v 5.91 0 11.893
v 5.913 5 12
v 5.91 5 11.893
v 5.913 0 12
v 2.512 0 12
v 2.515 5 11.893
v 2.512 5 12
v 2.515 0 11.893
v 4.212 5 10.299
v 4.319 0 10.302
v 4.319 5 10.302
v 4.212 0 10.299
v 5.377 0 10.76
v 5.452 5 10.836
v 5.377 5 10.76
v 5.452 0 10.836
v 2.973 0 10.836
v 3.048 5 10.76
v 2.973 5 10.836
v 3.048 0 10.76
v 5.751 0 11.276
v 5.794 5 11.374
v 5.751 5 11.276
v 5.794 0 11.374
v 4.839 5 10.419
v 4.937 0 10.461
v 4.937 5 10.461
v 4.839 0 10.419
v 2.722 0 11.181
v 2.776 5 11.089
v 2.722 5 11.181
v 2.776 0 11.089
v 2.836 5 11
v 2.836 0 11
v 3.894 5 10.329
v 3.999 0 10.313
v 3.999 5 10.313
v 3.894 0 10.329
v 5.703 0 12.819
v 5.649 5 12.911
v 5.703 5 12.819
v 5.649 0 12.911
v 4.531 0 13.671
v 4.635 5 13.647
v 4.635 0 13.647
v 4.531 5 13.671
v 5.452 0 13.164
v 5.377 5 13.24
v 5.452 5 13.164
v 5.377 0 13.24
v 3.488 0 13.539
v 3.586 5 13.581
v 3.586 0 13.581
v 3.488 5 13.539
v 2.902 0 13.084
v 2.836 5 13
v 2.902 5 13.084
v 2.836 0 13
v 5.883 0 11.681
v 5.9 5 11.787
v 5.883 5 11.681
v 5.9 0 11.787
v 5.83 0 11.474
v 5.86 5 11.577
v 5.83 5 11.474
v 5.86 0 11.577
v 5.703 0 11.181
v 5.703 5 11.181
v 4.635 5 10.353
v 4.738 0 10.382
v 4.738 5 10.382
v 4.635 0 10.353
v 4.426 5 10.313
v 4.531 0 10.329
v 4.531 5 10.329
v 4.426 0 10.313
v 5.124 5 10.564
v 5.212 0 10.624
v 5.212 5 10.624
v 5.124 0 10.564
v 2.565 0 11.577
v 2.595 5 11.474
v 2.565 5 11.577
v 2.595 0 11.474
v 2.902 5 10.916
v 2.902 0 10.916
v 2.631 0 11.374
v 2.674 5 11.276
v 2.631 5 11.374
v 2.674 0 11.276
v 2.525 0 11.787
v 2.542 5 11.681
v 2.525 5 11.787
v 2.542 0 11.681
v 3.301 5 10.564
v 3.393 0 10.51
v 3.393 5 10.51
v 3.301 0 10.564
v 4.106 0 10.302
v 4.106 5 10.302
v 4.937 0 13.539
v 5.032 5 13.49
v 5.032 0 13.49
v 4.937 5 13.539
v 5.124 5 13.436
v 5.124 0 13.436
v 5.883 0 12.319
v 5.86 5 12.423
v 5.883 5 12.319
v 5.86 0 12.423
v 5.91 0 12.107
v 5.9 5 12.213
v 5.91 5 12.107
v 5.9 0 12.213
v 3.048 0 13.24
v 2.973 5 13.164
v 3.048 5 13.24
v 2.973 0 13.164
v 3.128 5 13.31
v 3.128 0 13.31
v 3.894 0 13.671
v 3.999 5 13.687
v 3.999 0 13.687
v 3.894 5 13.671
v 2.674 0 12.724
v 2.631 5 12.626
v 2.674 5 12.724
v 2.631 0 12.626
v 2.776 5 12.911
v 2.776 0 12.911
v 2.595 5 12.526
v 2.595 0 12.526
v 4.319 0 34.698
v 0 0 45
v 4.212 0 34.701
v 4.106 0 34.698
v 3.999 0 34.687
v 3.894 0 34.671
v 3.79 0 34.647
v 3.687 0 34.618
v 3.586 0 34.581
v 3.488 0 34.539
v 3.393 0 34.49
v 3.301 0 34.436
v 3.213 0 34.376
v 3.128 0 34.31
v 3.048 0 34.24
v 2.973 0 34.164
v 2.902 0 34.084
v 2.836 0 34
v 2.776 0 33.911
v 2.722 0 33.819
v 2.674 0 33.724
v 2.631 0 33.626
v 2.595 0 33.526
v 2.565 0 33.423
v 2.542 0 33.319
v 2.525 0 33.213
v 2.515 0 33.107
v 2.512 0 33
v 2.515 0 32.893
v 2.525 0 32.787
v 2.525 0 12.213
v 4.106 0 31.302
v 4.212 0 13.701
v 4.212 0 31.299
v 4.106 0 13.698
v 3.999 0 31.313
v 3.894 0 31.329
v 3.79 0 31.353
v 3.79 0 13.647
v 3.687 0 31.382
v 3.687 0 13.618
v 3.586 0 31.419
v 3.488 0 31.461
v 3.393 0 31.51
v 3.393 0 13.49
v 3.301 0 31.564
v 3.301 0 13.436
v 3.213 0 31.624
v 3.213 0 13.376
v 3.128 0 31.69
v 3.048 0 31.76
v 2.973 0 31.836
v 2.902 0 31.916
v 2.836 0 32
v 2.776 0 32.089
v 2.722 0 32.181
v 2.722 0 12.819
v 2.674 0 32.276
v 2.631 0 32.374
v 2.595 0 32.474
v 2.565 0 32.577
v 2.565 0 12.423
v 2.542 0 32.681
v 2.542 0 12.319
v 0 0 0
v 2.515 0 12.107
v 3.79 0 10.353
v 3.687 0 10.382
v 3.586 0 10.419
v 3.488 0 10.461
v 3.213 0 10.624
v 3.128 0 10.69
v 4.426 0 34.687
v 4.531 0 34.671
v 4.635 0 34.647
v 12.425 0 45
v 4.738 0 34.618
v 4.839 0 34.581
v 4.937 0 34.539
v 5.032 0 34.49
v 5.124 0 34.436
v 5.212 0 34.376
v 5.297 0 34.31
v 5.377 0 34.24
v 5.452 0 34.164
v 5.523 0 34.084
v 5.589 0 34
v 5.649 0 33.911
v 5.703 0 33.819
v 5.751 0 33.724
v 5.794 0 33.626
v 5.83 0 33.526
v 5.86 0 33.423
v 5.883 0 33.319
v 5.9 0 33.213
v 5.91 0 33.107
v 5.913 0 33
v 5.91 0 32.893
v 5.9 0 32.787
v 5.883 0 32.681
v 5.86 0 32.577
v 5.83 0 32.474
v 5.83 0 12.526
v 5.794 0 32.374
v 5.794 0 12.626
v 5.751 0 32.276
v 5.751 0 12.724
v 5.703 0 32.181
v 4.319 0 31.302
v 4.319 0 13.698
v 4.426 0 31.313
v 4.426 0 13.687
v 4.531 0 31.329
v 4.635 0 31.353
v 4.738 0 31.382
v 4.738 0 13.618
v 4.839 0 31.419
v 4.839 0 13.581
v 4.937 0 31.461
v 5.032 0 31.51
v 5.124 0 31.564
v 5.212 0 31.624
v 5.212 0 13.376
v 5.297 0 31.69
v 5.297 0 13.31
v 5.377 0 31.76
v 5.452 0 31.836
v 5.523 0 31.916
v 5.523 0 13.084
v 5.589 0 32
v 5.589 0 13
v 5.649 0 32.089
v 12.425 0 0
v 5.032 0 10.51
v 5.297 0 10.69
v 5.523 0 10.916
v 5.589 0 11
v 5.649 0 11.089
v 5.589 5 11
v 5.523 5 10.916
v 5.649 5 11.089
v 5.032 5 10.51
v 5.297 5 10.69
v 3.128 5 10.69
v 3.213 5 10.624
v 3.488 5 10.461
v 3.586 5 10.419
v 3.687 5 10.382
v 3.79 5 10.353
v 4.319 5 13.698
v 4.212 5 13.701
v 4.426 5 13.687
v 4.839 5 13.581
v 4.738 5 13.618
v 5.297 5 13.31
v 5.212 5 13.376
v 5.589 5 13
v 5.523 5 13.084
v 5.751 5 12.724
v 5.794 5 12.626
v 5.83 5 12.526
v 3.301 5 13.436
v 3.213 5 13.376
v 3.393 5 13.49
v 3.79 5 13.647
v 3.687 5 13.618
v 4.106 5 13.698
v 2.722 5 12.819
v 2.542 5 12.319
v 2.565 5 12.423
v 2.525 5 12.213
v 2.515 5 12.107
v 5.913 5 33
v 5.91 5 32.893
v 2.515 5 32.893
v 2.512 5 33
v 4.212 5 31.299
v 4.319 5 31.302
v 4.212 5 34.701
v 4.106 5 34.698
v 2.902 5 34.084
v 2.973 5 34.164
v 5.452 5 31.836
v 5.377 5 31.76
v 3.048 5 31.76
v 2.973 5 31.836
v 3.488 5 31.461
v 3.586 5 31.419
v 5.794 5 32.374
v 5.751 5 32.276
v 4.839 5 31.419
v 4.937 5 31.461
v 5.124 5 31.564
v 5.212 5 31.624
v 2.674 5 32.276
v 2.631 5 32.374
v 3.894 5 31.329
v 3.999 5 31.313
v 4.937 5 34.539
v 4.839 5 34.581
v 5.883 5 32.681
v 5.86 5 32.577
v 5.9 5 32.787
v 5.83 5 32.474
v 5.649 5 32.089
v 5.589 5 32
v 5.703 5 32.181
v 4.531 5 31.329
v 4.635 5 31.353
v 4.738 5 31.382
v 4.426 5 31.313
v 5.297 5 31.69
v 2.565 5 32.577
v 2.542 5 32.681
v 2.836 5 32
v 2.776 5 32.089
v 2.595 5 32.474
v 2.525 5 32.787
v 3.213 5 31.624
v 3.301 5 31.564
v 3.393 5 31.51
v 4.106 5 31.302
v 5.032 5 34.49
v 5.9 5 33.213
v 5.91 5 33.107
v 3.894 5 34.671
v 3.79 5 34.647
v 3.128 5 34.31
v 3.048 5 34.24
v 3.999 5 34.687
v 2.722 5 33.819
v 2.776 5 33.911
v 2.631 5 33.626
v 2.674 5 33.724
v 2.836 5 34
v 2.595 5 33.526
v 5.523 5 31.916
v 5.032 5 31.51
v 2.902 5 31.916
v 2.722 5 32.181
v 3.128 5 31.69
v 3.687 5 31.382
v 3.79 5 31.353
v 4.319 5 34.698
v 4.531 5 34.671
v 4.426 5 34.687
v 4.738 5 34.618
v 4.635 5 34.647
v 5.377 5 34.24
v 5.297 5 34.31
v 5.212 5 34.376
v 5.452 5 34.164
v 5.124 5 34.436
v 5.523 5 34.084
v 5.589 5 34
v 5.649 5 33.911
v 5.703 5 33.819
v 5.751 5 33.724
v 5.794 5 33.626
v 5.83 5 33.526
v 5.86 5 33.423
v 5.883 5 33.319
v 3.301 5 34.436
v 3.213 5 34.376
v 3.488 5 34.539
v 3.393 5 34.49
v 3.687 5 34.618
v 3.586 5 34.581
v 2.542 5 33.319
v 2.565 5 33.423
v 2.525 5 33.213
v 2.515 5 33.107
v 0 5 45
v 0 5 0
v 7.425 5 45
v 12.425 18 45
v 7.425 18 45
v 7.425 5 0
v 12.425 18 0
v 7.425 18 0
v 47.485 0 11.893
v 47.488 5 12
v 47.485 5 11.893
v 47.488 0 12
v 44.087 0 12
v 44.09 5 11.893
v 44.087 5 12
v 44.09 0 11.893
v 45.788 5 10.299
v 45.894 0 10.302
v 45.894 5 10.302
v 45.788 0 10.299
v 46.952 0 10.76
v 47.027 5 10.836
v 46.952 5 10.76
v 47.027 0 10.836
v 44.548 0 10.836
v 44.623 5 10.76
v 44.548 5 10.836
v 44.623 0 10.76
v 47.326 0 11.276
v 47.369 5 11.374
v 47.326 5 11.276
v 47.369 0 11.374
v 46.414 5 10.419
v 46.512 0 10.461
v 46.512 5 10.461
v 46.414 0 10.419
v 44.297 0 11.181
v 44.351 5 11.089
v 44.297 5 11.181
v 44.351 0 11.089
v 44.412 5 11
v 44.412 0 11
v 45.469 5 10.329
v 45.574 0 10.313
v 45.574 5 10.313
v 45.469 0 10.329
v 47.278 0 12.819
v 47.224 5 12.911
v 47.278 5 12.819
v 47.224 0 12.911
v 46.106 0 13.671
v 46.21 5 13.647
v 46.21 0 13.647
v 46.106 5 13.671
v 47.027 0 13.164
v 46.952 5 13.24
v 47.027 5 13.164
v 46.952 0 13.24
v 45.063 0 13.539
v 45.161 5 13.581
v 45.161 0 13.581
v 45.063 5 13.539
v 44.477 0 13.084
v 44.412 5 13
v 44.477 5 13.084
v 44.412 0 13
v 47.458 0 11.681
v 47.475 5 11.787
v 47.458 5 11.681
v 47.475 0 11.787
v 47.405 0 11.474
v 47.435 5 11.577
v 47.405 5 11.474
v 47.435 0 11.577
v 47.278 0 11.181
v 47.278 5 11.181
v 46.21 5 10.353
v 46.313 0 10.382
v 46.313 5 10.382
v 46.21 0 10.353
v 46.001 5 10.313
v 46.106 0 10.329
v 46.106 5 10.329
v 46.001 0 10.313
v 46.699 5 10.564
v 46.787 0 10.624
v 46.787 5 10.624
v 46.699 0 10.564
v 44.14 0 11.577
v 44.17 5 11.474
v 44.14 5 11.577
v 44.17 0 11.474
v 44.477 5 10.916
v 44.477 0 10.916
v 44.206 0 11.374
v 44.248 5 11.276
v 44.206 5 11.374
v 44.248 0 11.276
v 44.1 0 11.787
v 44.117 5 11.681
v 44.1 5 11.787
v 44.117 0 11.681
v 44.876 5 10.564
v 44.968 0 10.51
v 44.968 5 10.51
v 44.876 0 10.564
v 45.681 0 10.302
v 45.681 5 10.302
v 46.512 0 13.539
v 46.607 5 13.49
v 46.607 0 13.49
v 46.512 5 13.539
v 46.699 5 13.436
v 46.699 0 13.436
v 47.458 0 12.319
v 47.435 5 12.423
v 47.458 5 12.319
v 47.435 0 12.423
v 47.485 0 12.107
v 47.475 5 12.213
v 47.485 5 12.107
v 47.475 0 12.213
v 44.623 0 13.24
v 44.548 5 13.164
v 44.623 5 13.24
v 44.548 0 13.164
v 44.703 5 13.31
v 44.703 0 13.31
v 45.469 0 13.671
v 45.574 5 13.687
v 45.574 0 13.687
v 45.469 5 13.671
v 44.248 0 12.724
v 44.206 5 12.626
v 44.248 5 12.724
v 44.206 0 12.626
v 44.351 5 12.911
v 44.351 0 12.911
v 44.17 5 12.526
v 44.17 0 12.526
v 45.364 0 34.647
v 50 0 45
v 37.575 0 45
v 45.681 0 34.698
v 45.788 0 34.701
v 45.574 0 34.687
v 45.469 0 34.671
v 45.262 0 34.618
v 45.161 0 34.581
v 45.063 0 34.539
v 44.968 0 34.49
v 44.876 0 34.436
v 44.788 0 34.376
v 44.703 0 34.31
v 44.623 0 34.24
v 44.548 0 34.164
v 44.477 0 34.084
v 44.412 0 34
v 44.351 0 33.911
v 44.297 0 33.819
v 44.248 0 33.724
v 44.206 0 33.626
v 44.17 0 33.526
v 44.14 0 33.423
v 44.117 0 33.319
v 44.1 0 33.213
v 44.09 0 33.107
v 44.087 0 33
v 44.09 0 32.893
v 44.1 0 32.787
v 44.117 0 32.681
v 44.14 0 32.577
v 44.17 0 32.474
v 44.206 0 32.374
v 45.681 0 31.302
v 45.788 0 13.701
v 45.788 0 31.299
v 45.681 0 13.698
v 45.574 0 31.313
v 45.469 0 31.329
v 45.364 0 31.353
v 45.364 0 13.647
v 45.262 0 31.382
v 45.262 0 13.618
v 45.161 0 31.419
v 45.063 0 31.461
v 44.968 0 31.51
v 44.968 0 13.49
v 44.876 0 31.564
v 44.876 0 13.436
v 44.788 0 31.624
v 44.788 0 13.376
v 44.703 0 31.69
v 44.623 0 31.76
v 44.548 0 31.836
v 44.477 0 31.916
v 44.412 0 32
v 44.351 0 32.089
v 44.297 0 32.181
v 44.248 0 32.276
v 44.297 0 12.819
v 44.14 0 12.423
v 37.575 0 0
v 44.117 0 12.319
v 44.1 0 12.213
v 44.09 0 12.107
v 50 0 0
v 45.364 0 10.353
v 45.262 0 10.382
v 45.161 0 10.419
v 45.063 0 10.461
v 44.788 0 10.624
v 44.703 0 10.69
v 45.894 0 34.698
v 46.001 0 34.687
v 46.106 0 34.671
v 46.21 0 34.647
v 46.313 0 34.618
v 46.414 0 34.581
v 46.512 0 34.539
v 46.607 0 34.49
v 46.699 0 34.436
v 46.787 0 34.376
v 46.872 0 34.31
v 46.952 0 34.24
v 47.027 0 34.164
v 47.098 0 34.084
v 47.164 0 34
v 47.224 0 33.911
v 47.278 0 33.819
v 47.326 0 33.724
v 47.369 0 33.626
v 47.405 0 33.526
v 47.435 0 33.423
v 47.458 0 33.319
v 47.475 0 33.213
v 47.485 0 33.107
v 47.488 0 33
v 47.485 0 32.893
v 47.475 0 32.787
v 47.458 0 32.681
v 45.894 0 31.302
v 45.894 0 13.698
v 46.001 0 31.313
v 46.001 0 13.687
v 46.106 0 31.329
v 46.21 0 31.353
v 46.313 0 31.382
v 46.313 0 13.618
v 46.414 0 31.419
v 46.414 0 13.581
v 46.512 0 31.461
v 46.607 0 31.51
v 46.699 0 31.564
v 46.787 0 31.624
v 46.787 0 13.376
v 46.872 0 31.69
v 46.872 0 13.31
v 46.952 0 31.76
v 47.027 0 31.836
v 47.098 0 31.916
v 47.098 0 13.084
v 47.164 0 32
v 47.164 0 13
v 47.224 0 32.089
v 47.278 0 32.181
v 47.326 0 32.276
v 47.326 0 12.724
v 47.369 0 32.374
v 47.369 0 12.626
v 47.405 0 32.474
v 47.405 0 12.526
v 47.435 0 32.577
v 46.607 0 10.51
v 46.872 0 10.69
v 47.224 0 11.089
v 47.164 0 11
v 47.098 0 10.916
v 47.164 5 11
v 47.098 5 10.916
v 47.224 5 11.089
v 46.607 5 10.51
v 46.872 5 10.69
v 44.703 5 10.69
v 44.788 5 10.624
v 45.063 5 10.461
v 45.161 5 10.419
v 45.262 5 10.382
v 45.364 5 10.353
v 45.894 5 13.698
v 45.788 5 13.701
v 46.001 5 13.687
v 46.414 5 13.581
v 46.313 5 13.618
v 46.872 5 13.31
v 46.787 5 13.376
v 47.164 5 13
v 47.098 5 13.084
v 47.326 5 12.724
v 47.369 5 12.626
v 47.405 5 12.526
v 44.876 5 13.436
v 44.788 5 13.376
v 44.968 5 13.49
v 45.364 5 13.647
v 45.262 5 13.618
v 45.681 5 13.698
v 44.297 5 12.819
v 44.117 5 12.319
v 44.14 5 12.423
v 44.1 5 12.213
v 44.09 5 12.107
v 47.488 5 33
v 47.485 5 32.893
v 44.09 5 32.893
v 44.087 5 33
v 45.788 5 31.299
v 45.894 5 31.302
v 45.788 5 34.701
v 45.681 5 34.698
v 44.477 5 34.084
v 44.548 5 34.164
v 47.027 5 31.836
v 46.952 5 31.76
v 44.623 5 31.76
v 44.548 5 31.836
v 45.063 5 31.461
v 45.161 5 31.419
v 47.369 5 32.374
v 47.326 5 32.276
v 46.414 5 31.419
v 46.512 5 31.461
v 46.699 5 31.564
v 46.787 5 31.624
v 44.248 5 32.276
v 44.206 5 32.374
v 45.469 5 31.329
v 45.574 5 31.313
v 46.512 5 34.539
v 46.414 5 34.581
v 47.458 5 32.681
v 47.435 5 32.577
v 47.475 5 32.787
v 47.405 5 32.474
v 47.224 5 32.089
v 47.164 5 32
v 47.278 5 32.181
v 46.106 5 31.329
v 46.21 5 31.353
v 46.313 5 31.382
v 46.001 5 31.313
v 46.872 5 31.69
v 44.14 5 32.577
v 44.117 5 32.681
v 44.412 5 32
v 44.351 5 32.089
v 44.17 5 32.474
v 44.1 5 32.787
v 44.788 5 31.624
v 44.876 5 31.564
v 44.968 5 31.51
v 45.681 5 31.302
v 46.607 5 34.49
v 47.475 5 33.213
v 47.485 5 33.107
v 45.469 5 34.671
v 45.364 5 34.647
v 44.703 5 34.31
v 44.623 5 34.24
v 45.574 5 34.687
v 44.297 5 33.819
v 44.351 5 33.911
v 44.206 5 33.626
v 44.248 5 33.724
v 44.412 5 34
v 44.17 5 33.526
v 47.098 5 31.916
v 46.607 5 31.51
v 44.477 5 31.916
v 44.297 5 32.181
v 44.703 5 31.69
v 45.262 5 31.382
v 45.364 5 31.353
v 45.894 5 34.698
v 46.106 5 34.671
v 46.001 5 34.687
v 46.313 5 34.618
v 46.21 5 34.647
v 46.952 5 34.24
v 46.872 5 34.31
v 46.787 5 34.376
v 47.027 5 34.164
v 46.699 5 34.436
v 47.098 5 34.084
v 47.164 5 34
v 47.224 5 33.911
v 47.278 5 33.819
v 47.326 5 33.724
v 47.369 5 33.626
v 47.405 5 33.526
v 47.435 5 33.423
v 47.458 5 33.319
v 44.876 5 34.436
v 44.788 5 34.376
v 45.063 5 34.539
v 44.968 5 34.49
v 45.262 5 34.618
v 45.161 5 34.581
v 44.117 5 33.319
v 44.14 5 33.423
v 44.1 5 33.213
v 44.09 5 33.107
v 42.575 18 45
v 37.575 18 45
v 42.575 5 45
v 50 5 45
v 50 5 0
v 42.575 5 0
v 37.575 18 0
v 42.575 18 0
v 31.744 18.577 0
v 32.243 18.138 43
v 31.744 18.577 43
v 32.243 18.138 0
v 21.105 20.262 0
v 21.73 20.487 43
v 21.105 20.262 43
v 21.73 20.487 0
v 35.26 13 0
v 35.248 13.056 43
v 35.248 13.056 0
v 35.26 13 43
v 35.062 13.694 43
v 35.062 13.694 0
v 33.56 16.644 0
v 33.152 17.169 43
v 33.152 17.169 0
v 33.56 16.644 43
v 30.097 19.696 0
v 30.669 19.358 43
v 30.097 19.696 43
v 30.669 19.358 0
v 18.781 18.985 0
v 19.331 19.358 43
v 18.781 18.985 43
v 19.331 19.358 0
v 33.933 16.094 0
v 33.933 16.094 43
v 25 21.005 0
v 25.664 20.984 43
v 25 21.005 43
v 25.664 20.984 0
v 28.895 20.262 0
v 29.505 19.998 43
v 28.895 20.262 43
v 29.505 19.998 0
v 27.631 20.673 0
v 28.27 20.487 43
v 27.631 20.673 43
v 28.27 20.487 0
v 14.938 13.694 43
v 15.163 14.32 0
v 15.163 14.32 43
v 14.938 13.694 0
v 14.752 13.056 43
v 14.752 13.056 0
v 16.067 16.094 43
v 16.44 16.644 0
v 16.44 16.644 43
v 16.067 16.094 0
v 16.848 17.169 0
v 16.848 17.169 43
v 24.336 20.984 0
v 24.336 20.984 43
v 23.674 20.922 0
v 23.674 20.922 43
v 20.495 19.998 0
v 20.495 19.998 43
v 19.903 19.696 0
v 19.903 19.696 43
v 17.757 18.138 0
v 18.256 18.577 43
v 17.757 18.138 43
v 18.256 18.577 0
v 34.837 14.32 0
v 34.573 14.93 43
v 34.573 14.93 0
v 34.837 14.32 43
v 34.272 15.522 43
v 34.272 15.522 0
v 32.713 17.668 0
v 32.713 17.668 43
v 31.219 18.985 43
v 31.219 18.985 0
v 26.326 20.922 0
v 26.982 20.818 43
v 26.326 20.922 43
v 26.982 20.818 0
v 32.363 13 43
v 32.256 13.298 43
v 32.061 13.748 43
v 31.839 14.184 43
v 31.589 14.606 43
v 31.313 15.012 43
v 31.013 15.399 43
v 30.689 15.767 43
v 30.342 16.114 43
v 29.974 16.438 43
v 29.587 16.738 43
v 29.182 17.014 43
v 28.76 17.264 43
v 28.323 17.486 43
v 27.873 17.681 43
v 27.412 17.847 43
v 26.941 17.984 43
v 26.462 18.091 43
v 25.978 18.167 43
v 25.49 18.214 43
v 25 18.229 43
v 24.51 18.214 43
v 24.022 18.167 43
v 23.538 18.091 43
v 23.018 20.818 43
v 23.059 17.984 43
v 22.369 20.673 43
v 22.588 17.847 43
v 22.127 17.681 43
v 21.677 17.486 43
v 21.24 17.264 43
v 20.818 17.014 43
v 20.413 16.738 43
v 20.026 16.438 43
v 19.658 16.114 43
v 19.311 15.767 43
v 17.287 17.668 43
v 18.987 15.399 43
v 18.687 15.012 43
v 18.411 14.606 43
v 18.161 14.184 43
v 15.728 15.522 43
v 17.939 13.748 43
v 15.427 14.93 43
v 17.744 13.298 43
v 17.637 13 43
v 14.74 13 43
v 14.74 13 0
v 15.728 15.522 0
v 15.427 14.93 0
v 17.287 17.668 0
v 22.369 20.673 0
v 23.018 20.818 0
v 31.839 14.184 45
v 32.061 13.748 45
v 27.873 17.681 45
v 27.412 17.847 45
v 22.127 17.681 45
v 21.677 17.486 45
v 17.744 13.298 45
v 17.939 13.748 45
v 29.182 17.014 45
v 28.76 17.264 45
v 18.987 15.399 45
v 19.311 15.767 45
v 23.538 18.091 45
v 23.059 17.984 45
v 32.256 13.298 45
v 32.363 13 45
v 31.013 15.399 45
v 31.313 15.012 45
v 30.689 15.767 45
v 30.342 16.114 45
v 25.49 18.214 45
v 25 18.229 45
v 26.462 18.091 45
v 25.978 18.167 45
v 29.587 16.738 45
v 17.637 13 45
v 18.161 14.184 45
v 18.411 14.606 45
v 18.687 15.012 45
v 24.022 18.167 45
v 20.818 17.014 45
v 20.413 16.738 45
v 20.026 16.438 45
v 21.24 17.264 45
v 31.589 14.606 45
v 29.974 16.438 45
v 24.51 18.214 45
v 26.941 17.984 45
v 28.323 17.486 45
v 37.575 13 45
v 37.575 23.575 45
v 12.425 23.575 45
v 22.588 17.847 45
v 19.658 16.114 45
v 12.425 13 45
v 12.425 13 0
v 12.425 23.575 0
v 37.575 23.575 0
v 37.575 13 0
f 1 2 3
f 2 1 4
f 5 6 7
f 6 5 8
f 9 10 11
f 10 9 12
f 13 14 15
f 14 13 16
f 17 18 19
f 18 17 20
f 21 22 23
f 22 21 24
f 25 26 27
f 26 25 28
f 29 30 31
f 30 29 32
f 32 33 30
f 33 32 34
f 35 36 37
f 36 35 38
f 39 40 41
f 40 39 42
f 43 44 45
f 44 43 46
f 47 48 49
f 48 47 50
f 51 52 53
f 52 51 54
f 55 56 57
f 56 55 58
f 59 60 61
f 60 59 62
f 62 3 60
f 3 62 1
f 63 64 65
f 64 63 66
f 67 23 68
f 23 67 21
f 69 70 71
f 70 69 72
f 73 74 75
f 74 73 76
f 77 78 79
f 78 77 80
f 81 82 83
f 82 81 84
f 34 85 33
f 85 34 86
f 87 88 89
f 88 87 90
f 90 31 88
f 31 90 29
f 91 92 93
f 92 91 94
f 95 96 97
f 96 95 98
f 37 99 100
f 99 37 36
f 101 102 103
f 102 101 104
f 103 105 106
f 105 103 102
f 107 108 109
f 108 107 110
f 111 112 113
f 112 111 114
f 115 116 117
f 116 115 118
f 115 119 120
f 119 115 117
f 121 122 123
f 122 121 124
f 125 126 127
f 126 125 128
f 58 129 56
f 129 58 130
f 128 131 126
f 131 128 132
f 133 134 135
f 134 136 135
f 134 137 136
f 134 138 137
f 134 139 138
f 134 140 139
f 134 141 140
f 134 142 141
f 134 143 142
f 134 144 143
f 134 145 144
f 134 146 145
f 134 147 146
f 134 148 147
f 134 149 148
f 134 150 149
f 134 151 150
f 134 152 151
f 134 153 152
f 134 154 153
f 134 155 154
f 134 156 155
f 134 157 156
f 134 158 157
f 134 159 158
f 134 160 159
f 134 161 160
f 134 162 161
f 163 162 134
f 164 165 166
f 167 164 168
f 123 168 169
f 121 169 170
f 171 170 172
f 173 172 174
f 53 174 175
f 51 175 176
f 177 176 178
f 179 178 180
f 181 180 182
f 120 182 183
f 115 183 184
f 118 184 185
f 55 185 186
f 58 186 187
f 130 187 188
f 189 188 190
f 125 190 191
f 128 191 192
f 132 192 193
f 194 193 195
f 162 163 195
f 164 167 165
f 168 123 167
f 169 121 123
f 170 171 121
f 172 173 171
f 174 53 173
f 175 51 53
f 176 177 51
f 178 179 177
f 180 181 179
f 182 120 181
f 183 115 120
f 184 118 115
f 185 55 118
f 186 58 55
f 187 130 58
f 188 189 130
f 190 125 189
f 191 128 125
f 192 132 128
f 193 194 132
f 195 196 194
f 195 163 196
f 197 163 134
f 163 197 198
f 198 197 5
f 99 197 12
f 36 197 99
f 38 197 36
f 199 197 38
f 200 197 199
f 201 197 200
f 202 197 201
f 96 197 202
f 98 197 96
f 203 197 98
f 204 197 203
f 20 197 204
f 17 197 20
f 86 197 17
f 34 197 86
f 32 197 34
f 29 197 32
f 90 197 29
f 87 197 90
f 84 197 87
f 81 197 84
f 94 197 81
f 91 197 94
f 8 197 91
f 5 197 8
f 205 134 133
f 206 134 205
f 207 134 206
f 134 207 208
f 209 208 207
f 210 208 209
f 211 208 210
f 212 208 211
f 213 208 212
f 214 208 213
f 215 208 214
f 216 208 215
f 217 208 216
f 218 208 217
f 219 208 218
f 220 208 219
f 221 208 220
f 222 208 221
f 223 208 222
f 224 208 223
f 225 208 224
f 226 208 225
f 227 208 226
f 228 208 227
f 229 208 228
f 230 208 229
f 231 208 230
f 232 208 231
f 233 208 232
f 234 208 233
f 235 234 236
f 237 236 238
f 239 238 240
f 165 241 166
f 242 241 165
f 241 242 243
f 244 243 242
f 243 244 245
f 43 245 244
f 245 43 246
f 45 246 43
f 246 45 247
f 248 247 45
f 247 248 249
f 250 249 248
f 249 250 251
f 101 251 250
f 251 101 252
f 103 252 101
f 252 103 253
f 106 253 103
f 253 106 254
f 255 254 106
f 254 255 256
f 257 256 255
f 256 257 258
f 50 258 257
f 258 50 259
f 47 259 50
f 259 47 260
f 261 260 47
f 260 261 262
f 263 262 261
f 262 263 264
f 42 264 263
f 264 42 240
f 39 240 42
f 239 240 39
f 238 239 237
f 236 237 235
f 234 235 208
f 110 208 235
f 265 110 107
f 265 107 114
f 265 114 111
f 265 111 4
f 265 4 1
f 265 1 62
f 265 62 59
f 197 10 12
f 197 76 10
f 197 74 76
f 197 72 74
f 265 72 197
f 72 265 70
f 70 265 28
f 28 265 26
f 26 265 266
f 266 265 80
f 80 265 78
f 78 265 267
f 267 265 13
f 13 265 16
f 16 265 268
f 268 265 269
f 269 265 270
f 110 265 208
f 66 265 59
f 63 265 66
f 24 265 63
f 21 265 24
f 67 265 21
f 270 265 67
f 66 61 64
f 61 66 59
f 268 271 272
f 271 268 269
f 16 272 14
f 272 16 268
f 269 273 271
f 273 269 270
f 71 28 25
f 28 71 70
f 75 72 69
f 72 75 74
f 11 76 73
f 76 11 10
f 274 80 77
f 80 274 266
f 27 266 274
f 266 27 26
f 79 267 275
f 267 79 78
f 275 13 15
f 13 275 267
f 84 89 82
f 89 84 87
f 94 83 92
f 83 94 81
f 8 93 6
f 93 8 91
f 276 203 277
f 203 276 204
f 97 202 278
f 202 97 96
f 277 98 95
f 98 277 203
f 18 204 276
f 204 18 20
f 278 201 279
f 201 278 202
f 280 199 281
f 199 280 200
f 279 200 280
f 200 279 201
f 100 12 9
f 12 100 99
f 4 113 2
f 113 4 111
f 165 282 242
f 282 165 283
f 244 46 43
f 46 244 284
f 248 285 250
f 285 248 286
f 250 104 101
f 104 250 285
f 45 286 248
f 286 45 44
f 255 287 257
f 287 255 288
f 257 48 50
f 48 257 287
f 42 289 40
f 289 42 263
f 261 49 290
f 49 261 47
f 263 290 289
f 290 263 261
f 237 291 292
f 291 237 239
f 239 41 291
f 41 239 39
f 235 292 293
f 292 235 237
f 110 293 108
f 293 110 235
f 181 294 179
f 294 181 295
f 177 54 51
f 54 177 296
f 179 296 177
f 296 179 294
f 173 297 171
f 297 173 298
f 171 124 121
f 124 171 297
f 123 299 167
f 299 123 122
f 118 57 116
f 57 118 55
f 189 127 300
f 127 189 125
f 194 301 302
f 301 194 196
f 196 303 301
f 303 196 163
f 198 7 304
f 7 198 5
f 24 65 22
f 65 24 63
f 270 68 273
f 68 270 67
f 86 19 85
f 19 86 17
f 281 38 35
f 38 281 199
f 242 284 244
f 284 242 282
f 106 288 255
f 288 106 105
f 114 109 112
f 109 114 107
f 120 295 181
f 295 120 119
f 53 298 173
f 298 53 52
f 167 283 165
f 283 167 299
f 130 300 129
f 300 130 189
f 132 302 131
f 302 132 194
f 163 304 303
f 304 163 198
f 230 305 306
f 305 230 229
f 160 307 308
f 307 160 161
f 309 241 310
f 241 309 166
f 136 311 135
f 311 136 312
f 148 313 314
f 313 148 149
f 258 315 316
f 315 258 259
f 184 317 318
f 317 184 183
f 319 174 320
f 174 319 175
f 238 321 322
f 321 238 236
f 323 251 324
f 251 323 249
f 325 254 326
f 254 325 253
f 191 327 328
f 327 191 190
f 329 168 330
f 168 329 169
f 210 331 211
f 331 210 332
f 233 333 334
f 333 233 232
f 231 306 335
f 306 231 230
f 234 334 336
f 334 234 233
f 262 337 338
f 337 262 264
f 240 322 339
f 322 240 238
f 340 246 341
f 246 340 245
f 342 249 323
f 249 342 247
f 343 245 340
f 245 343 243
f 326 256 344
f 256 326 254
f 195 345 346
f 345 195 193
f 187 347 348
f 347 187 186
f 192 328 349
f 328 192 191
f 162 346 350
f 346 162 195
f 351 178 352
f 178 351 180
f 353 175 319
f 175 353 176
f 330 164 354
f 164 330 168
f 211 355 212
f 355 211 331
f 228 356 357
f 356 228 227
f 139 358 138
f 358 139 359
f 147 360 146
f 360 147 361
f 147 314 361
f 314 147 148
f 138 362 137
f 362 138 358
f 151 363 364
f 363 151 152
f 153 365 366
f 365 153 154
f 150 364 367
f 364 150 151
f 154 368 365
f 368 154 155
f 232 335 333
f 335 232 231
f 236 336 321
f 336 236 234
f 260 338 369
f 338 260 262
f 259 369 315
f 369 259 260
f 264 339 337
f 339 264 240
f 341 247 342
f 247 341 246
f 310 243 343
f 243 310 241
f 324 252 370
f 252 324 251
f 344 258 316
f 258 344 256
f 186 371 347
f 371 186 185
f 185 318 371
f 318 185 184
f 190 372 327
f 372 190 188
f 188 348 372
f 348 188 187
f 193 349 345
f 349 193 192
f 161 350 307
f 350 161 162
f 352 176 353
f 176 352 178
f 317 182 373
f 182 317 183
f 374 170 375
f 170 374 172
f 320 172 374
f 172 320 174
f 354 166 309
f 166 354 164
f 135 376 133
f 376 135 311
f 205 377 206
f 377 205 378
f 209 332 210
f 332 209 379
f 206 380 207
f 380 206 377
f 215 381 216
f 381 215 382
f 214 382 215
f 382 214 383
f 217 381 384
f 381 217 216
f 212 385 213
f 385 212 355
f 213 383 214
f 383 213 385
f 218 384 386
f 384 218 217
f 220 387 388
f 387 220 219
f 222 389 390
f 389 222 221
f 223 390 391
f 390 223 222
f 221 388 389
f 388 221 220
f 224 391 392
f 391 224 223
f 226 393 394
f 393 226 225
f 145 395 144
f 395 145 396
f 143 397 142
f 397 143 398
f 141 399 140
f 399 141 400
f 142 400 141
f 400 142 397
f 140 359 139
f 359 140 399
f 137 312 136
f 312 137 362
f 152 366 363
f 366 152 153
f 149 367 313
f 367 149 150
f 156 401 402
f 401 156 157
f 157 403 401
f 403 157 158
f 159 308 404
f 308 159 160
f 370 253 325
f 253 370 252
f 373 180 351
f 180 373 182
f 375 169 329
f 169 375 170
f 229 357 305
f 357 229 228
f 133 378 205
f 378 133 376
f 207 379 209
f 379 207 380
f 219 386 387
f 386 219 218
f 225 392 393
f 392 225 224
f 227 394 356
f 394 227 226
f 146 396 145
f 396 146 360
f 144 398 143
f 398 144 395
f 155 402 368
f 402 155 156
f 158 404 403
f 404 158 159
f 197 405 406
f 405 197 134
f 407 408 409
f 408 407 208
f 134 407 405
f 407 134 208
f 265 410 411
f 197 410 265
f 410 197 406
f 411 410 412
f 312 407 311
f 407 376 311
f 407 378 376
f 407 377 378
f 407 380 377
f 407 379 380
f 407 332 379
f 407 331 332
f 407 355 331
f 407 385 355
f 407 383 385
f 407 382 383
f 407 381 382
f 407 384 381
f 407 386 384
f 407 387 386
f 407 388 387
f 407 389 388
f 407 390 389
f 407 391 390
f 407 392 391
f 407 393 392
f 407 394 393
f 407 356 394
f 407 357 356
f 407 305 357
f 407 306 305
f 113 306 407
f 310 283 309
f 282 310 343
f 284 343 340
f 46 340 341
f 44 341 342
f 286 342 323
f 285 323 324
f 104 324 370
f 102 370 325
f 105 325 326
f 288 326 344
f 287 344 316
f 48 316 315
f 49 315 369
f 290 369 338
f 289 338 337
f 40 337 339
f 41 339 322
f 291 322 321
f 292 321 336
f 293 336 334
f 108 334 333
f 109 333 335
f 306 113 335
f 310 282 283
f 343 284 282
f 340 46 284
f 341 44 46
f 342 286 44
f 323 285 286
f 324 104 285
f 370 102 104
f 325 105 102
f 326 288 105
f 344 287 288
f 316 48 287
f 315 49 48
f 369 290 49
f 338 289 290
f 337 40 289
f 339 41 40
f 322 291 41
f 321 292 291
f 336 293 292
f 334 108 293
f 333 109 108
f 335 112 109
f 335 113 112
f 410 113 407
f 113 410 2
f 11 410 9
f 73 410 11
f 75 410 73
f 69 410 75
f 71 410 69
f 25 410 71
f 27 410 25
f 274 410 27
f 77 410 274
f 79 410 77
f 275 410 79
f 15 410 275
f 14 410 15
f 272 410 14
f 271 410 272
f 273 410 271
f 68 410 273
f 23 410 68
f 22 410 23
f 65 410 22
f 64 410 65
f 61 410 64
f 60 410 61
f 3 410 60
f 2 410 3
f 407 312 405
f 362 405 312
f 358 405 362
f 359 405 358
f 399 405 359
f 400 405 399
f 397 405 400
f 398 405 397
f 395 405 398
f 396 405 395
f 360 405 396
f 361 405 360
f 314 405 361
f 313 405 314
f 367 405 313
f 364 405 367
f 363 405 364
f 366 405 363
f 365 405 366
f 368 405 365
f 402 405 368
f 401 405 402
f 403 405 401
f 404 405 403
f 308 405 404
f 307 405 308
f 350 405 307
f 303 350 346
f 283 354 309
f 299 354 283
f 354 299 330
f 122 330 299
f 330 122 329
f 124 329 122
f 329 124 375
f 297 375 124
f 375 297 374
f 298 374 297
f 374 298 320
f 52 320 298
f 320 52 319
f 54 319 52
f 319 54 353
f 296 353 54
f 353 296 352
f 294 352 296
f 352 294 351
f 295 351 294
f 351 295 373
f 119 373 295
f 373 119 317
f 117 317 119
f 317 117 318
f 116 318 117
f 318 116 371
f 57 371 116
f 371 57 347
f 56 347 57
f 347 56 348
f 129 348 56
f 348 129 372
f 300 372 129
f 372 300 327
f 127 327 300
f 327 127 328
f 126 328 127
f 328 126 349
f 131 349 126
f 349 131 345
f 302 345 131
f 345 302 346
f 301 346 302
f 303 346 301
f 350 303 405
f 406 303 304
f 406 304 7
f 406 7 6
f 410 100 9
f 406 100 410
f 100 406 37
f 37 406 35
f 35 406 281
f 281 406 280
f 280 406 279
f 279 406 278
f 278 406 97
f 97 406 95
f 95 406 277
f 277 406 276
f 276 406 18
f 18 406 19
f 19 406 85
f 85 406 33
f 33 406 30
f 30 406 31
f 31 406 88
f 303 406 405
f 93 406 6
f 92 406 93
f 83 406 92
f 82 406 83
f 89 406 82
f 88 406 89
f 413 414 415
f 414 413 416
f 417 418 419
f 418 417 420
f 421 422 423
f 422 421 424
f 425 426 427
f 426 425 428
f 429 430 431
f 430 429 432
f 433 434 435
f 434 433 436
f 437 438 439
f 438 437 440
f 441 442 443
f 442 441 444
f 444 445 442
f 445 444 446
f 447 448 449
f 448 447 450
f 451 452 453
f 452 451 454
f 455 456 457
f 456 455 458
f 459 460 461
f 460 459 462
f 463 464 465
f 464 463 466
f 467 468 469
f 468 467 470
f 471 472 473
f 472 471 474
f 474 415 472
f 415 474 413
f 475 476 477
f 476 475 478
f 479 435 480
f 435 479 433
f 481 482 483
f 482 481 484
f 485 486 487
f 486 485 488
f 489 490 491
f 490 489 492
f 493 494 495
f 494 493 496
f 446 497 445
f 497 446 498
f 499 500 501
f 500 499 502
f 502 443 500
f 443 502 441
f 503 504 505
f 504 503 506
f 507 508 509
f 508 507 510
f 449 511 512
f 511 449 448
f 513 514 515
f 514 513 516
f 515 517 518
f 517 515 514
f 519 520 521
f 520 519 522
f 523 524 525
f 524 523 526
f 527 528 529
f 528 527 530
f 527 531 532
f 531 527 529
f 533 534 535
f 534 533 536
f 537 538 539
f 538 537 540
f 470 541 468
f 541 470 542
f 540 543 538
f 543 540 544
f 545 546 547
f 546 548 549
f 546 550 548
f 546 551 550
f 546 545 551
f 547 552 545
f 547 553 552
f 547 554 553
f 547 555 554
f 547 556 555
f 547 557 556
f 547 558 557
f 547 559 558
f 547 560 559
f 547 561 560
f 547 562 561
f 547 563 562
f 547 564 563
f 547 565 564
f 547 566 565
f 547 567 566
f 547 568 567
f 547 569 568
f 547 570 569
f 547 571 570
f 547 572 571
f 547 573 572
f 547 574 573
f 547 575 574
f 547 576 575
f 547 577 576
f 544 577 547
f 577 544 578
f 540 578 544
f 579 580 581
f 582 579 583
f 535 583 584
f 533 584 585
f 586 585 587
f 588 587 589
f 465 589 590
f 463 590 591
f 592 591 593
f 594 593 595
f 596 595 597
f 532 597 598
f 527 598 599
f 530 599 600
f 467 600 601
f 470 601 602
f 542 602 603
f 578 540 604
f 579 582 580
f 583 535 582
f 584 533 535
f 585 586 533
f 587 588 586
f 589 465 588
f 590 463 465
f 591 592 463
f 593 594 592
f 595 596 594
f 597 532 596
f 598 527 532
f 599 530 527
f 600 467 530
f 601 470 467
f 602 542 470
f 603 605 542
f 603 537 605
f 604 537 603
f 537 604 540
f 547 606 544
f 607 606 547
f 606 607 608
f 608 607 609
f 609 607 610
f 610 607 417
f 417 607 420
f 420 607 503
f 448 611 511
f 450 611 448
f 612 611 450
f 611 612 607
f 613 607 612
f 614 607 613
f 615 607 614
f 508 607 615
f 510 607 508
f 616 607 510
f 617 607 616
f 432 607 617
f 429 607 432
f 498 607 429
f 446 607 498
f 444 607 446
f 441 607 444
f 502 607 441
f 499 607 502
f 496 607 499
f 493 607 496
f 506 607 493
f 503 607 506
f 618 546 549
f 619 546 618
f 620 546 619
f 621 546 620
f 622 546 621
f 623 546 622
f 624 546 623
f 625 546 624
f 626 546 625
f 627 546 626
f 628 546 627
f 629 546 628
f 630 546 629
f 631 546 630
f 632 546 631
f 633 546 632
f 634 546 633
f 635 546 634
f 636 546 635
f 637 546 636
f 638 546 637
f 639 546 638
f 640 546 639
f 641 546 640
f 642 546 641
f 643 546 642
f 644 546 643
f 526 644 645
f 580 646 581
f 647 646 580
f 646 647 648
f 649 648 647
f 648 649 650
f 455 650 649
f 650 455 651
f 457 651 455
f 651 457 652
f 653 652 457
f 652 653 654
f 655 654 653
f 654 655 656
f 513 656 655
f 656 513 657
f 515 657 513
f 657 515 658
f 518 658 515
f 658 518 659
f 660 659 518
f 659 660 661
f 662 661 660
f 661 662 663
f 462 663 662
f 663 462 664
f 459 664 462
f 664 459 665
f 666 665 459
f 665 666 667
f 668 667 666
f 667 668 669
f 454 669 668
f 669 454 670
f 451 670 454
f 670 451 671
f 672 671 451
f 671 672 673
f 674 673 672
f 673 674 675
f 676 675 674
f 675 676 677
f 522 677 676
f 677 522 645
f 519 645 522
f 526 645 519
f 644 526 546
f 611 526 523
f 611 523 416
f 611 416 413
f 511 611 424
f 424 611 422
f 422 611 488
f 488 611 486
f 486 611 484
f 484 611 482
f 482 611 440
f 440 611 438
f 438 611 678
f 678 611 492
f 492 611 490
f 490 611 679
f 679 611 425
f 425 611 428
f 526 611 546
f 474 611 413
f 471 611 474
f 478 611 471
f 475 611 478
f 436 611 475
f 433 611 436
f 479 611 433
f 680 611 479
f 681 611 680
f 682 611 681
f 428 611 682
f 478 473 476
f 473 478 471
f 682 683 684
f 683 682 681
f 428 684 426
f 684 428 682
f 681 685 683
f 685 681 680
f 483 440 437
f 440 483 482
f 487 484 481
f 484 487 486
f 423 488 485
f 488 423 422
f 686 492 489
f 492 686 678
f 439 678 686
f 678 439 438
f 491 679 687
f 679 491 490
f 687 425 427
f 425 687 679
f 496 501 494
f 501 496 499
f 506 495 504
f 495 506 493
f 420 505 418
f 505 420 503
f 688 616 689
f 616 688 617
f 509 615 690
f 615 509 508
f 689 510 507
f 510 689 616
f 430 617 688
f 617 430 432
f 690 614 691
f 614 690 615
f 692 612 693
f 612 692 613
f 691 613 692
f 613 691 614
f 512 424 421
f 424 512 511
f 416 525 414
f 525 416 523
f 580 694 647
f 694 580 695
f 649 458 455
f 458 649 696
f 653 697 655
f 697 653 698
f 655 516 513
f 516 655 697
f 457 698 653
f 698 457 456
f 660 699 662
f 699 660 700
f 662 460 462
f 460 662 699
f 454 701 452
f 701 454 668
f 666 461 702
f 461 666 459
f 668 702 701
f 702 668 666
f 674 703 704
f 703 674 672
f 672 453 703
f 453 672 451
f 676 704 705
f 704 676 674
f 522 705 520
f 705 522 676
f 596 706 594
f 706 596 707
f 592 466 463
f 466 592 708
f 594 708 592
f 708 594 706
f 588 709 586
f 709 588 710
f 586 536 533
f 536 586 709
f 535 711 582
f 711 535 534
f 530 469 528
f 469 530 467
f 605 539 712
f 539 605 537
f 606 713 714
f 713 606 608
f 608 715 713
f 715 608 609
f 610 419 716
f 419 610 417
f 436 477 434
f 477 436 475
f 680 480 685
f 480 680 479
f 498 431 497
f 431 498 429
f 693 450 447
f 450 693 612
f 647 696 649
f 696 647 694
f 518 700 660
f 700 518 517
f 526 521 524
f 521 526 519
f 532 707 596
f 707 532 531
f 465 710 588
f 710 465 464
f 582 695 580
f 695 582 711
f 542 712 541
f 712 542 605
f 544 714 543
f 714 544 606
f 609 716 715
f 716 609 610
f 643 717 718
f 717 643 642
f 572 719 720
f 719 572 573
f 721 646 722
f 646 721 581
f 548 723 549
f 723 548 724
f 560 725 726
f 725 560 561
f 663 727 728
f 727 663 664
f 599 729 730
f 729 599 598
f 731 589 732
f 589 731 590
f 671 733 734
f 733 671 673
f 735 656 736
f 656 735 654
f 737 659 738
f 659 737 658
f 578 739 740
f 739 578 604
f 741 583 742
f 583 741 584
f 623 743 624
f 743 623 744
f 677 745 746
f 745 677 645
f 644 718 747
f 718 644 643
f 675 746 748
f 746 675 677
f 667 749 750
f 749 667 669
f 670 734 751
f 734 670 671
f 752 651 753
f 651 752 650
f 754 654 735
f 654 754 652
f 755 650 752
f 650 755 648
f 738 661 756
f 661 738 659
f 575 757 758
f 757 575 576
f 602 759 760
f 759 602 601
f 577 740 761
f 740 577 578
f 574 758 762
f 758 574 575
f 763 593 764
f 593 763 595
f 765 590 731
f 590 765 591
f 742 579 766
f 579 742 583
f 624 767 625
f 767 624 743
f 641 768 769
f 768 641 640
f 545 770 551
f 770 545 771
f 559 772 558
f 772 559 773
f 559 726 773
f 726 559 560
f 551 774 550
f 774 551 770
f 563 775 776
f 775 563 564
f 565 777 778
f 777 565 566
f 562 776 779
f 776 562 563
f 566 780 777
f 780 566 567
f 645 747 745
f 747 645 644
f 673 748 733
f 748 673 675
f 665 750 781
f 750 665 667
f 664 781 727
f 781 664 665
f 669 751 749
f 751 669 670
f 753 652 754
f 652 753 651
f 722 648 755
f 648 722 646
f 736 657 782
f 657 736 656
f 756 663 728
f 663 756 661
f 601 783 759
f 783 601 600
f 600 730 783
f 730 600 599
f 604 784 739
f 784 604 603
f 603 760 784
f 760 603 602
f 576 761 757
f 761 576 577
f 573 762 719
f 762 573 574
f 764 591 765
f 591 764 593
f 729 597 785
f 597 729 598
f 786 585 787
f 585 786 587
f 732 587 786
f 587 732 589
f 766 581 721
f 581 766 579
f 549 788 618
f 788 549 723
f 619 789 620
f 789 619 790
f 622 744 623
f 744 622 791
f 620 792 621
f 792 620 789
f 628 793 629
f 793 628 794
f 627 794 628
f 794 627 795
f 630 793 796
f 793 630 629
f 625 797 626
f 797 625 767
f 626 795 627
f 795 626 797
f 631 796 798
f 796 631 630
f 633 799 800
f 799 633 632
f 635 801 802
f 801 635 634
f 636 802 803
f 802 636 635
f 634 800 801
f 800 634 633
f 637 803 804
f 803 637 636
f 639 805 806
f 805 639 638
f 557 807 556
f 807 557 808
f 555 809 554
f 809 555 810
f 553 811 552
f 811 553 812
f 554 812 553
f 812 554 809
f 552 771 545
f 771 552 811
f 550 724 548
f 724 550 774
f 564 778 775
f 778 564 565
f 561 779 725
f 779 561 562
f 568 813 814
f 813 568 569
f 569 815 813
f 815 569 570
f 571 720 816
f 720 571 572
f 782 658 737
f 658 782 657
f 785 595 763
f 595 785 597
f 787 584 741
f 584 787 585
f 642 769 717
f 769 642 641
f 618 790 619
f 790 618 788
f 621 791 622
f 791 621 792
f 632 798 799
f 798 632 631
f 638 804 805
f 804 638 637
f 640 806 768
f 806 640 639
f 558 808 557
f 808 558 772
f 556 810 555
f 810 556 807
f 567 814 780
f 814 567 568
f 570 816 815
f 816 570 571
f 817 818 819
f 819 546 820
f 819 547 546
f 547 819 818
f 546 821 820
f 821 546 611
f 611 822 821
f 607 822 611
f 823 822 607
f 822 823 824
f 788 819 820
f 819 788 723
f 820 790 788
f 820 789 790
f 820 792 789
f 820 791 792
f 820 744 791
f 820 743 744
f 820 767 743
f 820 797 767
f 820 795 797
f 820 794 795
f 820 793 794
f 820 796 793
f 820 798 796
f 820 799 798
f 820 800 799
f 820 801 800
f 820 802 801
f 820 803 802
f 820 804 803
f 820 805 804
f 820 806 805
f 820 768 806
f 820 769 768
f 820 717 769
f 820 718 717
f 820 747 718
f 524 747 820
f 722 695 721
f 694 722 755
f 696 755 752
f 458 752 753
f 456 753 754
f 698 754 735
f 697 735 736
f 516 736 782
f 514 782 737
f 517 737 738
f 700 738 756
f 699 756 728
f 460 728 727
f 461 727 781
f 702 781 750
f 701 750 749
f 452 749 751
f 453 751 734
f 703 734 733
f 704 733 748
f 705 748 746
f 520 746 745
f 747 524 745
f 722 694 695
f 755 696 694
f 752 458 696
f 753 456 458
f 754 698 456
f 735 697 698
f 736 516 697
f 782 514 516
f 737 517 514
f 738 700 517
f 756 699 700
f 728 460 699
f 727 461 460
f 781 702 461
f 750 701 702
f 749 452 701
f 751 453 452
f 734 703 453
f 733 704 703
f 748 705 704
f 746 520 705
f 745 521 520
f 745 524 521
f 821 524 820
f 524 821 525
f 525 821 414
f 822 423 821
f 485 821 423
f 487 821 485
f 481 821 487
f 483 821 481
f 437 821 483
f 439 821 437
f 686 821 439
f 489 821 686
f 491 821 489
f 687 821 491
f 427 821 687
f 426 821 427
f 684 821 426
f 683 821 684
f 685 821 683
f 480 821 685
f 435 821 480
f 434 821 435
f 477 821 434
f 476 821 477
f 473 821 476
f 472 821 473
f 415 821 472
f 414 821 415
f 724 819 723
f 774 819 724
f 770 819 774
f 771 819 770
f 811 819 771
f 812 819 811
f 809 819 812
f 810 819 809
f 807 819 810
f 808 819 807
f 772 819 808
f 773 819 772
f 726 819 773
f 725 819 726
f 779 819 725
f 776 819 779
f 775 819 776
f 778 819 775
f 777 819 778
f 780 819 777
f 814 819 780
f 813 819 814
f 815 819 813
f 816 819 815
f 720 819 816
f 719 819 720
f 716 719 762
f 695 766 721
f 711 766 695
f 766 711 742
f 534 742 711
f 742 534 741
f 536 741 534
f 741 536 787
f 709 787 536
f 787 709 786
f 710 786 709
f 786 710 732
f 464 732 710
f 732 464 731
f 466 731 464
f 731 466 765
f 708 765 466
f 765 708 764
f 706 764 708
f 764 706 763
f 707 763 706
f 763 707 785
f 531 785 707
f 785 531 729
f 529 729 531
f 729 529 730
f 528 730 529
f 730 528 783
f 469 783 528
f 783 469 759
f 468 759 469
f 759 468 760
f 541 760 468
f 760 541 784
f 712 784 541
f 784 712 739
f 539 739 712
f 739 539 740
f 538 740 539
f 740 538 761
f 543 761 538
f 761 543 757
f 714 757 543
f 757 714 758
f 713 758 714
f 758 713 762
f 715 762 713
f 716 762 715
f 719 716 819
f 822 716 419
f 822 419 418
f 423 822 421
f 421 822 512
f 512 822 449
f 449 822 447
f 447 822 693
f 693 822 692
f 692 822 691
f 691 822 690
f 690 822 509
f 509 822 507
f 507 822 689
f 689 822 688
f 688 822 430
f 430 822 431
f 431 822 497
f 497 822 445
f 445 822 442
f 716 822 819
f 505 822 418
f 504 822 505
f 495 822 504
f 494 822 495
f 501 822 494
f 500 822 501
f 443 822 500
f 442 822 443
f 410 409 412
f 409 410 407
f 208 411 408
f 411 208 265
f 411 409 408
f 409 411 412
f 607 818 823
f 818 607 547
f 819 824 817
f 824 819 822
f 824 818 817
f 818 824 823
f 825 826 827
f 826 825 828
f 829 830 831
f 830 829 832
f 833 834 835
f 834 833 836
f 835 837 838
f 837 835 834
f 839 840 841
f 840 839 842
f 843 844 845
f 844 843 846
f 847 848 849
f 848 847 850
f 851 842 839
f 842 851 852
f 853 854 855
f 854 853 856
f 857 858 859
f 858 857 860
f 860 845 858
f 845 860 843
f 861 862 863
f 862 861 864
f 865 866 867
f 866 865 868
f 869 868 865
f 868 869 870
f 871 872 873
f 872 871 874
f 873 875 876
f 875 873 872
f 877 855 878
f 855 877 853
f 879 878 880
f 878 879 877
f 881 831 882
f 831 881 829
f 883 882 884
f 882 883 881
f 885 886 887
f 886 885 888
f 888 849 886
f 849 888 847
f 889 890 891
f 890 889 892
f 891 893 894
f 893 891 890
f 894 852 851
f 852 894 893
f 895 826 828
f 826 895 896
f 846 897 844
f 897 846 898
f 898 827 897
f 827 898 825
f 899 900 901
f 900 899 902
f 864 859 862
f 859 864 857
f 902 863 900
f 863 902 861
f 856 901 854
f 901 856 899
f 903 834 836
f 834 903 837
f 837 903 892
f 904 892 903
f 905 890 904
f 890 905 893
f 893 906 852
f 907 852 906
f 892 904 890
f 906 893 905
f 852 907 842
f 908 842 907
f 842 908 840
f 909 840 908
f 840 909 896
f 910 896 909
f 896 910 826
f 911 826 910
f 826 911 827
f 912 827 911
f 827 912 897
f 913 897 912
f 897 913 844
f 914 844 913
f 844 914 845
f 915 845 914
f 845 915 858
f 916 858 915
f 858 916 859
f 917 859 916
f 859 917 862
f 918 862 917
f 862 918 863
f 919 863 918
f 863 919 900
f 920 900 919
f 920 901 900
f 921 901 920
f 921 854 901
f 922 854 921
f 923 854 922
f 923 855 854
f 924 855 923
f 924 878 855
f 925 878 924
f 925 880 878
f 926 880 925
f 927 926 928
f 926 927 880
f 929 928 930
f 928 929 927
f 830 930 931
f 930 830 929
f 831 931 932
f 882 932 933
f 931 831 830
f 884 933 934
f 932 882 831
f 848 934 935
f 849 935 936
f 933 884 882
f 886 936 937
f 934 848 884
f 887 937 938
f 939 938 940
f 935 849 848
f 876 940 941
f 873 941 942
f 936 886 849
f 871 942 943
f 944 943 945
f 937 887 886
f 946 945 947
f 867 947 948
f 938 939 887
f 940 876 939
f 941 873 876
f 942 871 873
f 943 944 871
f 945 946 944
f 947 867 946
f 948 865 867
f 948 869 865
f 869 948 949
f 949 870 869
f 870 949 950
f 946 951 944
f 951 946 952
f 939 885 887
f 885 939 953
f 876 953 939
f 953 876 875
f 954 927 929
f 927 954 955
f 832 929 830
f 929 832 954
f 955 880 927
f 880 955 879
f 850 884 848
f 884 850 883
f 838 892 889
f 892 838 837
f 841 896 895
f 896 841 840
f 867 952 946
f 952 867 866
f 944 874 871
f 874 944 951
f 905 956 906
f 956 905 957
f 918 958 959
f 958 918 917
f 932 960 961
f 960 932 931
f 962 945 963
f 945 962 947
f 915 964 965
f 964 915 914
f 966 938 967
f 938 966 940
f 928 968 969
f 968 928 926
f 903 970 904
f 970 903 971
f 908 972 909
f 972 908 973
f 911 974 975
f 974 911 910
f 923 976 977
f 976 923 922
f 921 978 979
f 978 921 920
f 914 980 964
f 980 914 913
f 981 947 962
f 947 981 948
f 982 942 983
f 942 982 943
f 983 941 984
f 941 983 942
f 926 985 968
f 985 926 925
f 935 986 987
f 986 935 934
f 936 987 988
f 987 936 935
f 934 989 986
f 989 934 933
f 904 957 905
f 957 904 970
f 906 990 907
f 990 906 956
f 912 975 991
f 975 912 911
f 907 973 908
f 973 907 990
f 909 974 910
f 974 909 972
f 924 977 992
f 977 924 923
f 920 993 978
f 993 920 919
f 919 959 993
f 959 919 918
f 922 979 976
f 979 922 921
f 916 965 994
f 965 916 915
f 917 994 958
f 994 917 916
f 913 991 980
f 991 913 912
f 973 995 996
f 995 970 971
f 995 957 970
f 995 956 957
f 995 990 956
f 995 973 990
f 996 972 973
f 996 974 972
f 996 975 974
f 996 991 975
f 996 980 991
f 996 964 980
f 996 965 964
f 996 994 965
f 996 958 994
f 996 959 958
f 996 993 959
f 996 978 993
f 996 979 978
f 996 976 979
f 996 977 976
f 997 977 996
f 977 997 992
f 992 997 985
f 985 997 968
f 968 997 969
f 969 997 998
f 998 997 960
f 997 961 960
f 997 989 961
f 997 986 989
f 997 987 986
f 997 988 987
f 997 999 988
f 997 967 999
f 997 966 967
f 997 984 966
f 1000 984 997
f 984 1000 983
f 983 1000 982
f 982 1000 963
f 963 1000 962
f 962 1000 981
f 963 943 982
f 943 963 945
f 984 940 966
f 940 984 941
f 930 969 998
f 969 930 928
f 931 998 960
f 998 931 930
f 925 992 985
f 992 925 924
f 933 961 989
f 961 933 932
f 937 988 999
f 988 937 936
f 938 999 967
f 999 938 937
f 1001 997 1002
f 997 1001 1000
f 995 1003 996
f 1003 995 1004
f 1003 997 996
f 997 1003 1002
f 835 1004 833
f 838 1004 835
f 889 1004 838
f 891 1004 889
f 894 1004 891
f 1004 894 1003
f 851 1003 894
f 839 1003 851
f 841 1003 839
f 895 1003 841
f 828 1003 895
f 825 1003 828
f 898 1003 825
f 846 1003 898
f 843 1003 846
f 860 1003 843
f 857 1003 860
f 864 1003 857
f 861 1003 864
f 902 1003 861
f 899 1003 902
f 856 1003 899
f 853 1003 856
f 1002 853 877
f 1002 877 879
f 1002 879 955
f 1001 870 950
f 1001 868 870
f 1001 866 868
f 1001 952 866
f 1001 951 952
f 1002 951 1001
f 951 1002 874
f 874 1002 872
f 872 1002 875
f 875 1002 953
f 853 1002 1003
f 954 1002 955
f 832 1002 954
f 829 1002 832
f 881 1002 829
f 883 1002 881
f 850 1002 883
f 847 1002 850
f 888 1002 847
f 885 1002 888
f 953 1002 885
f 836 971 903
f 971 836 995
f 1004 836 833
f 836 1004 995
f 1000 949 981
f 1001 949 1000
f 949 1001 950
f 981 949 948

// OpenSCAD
// file: Common.scad
module cylinder_outer(height,radius,fn)
{
   fudge = 1/cos(180/fn);
   cylinder(h=height,r=radius*fudge,$fn=fn);
}

module fiveMMScrew()
{
   cylinder_outer(thickness+.1, 5.1/2, 100);
}

module threeMMScrew()
{
    cylinder_outer(thickness+.1, 3.4/2, 100);
}

module carriageHoles()
{
    for (hole = [0 : 1 : bearingCarriageHoleCount - 1])
    {
        translate([0, 0, bearingCarriageHoleOffset + (hole * bearingCarriageHoleDifference)])
        {
            rotate([-90, 0, 0])
            {
                threeMMScrew();
            }
        }
    }
}
// file: Rail.scad
include <Common.scad>;

barHeight = 20;
barLength = 75;
thickness = 5;
aluminumWidth = 20;
aluminumHeight = 20;
bearingHeight = aluminumHeight + thickness + 20;
bearingDiameter = 21.15;
bearingCarriageLength=50;
bearingCarriageHeight = bearingHeight;
bearingCarriageHoleCount = 2;
bearingCarriageHoleOffset = thickness + 7;
bearingCarriageHoleDifference = (bearingCarriageHeight - bearingCarriageHoleOffset * 2) / (bearingCarriageHoleCount - 1);
footWidth = (bearingCarriageLength - bearingDiameter - thickness * 2) / 2 - 1;
clampHeight = 18;
zaxisRodDiameter = 12;

module railBar()
{
    difference()
    {
        cube([barLength, thickness, aluminumHeight + thickness]);
        translate([10, 0, (aluminumHeight / 2) + thickness])
        {
            rotate([-90, 0, 0])
            {
                fiveMMScrew();
            }
        }
        translate([barLength - 10, 0,  (aluminumHeight / 2) + thickness])
        {
            rotate([-90, 0, 0])
            {
                fiveMMScrew();
            }
        }
    }
}

module railBottom()
{
    difference()
    {
        cube([barLength + bearingCarriageLength, aluminumWidth + thickness, thickness]);
        translate([10, thickness + (aluminumWidth / 2), 0])
        {
            fiveMMScrew();
        }
        translate([barLength + bearingCarriageLength - 10, thickness + (aluminumWidth / 2), 0])
        {
            fiveMMScrew();
        }
    }
}

module railBracket()
{
    translate([barLength, 0, 0])
    {
        difference()
        {
            cube([bearingCarriageLength, thickness, bearingCarriageHeight], false);

            translate([(footWidth) / 2, 0, 0])
            {
                translate([0, 3, bearingCarriageHoleOffset])
                {
                    rotate([-90, 0, 0])
                    {
                        cylinder_outer(thickness + .1, 3, 100);
                    }
                }
                carriageHoles();
            }

            translate([bearingCarriageLength - footWidth / 2, 0, 0])
            {
                translate([0, 3, bearingCarriageHoleOffset])
                {
                    rotate([-90, 0, 0])
                    {
                        cylinder_outer(thickness + .1, 3, 100);
                    }
                }
                carriageHoles();
            }
        }
    }
}

module clampFoot()
{
    difference()
    {
        cube([footWidth, thickness, bearingHeight]);
        translate([footWidth / 2, 0, 0])
        {
            carriageHoles();
        }
    }
}

module clampFeet()
{
    clampFoot();
    
    translate([bearingCarriageLength - footWidth, 0, 0])
    {
        clampFoot();
    }
}

module clampSidewalls()
{
    translate([footWidth - 1, 0, 0])
    {
        cube([thickness, clampHeight, bearingHeight]);
    }
    translate([bearingCarriageLength - footWidth - thickness + 1, 0, 0])
    {
        cube([thickness, clampHeight, bearingHeight]);
    }
}

module clamp()
{
    x = (bearingCarriageLength / 2) -
        (bearingDiameter / 2) - 2;

    translate([x, clampHeight - thickness, 0 ])//thickness * 2 - 1, 0 ])
    {
        difference()
        {
            cube([bearingDiameter + 4, bearingDiameter / 2,  bearingHeight]);
            translate([2, 3, -2])
            {
                bearing();
            }
        }
    }
}

module rail()
{
    union()
    {
        //bar
        color([1,0,0])
        railBar();

        //bottom rail
        //rail
        color([0,1,0])
        railBottom();

        //bearing bracket mount
        color([0,0,1])
        railBracket();

        middle = (bearingCarriageLength / 2);
        offset = (bearingDiameter / 2);
        color([1, 0, 1])
        // bearing mount
        translate([barLength + middle - offset, -thickness, 0])
        {
            color([0,1,0])
            bearingSpacer();
        }
    }
}

module bearing()
{
    translate([bearingDiameter / 2, thickness - bearingDiameter / 2, 0])
    {
        //bearing case
        cylinder_outer(bearingHeight, bearingDiameter / 2, 100);

        // space around z axis rod
        translate([0, 0, -2])
        {
            cylinder_outer(bearingHeight + 4, zaxisRodDiameter / 2 * 1.3, 100);
        }

        // zaxis rod
        translate([0, 0, -20])
        {
            cylinder_outer(bearingHeight + 40, 12 / 2, 100);
        }
    }
}

module bearingSpacer()
{
    difference()
    {
        cube([bearingDiameter, thickness, bearingHeight]);
        translate([0, -1, 0])
        {
            bearing();
        }
    }
}

module bearingClamp()
{
    color([1, 0, 0])
    clampFeet();

    color([0, 1, 0])
    clampSidewalls();

    color([0, 0, 1])
    clamp();
}
// main file
include <Rail.scad>;

// thickness = 5;
// bearingHeight = 50;
// bearingDiameter = 21.15;
// bearingCarriageLength=50;
// bearingCarriageHeight = bearingHeight;



union()
{
    // rotate([90, 0, 0])
    {
        bearingClamp();
    }
}
